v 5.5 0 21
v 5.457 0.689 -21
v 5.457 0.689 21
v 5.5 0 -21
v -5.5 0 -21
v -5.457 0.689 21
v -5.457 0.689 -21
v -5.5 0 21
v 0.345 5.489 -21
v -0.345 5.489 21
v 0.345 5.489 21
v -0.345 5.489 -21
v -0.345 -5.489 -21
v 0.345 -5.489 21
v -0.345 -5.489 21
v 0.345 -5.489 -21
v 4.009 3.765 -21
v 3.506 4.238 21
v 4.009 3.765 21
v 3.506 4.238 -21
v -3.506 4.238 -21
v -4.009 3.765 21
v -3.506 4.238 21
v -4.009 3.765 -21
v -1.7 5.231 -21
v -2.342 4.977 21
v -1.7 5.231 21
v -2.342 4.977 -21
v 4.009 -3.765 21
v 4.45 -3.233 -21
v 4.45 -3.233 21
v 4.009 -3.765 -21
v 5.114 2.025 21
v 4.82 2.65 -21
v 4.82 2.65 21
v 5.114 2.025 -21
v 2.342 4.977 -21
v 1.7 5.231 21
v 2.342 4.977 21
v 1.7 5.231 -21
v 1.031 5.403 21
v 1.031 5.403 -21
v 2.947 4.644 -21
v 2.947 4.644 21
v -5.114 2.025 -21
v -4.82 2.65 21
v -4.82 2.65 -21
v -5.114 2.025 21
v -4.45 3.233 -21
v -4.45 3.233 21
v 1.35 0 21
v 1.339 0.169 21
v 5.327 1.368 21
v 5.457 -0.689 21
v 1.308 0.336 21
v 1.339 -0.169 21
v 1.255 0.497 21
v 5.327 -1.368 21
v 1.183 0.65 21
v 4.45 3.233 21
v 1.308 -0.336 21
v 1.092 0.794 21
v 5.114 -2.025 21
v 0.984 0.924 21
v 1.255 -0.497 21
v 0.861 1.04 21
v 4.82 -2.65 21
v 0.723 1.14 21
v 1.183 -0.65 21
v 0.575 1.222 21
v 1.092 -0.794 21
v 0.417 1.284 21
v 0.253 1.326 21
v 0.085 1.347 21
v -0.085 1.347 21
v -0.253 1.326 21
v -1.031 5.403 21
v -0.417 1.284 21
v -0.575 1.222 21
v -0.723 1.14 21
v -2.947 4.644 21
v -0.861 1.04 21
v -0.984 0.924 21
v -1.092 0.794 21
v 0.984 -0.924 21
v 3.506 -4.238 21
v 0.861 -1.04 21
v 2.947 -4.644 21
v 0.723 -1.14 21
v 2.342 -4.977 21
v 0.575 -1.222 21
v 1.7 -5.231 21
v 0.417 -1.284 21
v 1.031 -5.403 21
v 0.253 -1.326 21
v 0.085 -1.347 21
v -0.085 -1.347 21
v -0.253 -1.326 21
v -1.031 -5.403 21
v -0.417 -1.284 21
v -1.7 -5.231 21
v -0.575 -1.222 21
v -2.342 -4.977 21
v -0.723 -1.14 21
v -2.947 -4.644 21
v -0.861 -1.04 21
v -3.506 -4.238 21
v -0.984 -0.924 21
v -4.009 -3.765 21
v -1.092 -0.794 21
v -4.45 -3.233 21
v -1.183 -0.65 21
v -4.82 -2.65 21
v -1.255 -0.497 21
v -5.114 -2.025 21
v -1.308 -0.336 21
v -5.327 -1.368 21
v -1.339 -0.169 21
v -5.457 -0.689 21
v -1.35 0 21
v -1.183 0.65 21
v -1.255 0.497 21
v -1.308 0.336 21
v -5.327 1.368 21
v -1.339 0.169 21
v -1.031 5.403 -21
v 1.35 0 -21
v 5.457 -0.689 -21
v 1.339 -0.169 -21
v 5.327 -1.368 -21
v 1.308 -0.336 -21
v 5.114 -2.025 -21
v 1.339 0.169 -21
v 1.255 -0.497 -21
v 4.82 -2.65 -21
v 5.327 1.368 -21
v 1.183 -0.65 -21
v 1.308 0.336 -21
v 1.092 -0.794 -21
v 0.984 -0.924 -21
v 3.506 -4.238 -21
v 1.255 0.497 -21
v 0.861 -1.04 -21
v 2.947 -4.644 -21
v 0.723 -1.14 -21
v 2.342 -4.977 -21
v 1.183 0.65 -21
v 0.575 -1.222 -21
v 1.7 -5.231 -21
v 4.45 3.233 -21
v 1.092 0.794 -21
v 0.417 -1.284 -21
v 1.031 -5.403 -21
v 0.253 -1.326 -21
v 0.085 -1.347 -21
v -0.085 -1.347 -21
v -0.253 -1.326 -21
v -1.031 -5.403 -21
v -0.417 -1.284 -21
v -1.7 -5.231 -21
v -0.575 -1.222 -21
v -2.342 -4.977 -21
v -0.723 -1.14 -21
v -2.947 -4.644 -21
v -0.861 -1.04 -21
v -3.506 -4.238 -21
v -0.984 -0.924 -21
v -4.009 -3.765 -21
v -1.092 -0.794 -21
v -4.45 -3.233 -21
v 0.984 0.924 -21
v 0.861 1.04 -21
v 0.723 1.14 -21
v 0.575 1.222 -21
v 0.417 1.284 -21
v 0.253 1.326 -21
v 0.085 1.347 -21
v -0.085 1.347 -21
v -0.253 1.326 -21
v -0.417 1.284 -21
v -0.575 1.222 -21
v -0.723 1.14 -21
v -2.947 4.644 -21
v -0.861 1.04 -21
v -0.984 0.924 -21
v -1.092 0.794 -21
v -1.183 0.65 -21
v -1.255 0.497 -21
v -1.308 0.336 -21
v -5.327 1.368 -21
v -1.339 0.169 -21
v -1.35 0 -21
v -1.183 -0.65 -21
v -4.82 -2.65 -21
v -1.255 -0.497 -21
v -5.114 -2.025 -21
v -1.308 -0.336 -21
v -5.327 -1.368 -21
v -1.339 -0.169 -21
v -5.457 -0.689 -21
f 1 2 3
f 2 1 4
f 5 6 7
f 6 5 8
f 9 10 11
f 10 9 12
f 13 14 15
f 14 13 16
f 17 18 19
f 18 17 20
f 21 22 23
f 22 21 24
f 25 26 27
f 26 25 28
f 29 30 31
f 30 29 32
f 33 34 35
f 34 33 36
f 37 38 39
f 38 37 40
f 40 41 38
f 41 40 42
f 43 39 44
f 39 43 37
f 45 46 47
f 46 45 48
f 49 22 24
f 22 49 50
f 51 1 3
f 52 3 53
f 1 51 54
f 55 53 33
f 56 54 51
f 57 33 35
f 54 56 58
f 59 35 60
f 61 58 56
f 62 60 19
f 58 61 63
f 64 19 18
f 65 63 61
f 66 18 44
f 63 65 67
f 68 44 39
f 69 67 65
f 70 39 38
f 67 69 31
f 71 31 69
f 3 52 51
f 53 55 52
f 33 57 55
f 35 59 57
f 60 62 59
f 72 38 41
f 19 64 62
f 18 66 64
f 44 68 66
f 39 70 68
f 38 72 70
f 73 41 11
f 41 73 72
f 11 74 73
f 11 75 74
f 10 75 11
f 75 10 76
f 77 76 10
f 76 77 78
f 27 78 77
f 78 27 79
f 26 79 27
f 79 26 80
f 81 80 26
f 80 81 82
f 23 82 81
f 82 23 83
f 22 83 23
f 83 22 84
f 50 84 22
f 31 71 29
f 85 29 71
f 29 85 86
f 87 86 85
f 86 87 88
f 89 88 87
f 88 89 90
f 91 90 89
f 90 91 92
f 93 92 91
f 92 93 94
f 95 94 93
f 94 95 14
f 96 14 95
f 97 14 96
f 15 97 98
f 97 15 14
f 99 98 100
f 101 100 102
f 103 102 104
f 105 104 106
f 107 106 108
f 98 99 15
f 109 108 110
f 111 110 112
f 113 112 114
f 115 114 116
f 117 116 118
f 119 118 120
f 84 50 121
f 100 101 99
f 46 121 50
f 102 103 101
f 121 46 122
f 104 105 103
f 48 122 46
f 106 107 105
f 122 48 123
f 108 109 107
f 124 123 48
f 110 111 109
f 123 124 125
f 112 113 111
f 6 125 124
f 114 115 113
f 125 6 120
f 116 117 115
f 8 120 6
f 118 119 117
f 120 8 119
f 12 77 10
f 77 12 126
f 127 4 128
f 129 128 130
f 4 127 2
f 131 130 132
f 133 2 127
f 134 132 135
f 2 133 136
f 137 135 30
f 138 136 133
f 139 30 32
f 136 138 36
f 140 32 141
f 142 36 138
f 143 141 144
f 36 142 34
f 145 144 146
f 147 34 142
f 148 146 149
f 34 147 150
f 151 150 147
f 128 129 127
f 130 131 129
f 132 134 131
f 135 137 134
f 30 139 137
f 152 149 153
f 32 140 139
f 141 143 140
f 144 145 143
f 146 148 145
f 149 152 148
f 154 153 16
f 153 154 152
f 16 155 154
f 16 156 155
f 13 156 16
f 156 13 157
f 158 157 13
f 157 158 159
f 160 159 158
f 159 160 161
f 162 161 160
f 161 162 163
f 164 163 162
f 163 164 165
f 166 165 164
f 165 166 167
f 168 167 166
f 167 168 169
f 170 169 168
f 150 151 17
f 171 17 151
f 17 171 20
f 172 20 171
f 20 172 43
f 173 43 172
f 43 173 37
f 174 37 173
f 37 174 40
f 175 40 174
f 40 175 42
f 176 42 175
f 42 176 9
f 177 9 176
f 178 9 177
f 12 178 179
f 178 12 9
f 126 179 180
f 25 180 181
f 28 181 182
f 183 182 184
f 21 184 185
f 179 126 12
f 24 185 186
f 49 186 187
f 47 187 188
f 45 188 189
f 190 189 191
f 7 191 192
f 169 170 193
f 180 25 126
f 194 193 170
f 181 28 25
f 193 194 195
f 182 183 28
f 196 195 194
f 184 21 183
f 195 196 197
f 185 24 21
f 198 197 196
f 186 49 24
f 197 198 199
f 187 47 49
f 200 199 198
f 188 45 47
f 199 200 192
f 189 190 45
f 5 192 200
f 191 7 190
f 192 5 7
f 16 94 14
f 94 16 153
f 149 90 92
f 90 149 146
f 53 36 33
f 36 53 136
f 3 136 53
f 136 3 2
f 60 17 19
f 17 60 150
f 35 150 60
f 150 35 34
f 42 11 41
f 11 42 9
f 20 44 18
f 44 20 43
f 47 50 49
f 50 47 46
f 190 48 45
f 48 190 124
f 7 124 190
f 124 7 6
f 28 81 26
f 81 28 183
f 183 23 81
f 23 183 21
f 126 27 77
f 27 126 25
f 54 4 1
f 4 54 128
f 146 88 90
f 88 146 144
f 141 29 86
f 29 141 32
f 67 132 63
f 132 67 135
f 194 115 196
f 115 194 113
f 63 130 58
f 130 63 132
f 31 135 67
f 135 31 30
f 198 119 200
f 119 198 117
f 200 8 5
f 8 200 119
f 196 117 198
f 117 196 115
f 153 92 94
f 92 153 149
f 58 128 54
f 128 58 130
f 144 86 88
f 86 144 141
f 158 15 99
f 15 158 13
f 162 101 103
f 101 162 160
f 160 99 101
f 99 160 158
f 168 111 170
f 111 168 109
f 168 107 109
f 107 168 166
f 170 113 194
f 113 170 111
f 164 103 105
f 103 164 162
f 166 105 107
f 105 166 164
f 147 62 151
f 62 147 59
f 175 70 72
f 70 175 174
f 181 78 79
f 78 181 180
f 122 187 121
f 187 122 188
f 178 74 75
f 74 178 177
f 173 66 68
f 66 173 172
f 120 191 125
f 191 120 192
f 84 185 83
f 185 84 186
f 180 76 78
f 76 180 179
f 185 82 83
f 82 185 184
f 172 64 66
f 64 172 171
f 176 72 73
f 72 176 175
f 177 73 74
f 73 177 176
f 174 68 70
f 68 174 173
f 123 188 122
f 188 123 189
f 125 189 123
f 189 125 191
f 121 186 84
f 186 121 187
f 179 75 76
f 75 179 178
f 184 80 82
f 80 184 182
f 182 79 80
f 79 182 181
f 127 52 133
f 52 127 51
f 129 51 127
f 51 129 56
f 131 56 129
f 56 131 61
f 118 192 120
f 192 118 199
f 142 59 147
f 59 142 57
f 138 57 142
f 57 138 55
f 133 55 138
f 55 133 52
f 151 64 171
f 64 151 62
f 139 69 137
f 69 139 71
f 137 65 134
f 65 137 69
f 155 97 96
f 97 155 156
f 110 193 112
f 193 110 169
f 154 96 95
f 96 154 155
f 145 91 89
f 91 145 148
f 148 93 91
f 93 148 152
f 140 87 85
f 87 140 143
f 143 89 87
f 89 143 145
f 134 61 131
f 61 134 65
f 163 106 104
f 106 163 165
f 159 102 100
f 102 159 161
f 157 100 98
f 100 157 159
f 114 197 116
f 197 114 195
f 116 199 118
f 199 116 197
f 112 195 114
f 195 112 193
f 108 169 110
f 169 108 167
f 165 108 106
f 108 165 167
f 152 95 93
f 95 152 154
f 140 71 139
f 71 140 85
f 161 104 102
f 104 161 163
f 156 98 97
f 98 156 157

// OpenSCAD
$fn = 50;


difference() {
	union() {
		translate(v = [0, 0, -21.0000000000]) {
			cylinder(h = 42, r = 5.5000000000);
		}
	}
	union() {
		translate(v = [0, 0, -100.0000000000]) {
			cylinder(h = 200, r = 1.3500000000);
		}
	}
}
